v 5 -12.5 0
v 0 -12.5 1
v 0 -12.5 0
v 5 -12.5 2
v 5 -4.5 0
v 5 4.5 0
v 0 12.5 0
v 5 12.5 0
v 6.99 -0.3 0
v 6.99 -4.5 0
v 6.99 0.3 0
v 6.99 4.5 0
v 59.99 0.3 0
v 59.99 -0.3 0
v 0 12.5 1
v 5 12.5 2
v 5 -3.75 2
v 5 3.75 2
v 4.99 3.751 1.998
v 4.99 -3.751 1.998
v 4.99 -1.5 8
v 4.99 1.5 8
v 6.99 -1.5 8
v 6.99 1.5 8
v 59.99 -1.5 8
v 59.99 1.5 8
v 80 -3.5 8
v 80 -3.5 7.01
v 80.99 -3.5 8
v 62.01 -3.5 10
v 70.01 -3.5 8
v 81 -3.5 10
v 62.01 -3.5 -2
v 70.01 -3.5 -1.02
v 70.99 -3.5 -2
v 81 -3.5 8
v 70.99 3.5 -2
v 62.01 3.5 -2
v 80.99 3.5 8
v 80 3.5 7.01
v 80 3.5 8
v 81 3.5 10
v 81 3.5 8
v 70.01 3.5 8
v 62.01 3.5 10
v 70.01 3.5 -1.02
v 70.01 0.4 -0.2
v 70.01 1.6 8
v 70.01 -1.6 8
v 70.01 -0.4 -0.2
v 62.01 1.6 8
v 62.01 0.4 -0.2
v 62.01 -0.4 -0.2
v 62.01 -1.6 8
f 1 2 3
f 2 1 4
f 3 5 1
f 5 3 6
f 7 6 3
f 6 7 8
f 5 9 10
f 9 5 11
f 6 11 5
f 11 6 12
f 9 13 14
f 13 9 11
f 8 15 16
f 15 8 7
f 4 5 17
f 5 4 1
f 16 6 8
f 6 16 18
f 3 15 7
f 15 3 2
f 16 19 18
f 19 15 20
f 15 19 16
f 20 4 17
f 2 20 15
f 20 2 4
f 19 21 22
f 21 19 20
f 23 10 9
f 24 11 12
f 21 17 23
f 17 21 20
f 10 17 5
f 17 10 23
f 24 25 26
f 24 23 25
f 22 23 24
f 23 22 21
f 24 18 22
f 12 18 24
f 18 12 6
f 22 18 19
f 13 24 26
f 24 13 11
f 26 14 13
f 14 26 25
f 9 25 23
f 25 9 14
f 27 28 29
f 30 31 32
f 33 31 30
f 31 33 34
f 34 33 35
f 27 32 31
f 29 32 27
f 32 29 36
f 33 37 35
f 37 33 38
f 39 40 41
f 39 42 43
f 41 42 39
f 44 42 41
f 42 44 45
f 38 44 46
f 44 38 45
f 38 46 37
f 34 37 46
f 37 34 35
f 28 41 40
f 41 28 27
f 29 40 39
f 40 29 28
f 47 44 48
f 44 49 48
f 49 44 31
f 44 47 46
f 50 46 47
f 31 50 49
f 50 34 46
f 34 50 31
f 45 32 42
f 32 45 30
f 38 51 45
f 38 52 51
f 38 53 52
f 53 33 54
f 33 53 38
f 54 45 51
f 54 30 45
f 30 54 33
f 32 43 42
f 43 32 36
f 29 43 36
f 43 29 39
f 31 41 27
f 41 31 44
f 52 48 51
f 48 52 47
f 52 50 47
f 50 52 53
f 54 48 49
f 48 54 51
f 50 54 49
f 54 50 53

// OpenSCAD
// HedgehogClip_2.scad
//
// Gutter clip for retaining a "hedgehog" debris-repelling filler.
// Inspired by a wire-based design by David Poston.
//
// Take 2 with narrower, triangular cross piece
//

delta         = 0.01 ;
clearance     = 0.1 ;

gulley_w      = 50 ;
gulley_edge_w = 10 ;   
clip_tw       = 3 ;                 // Width of cross-piece triangle
clip_ta       = 0.6 ;               // Width of triangle apex (non-zero for printing)
clip_th       = 8 ;                 // Height of cross-piece triangle
clip_l        = gulley_w + gulley_edge_w ;
clip_tbar_w   = 25 ;                // Width of T-bar end
clip_tbar_d   = gulley_edge_w/2 ;   // Depth of T-bar end
clip_tbar_t0  = 1 ;                 // Thickness of T-bar thin end
clip_tbar_t   = 2 ;                 // Thickness of T-bar thick end
retainer_w    = 7 ;                 // Width of retainer
retainer_d    = 8 ;                 // Depth of retainer
retainer_t    = 2 ;                 // Thickness of retainer cross-bar
retainer_lip  = 1 ;                 // Width/thickness of retainer lip


module triangular_prism(l, w, h) {
    // Triangular prism, centred on and extending along X-axis,
    // with the apex down
    //
    // l = length of prism
    // w = width of base of prism
    // h = height from base to apex of prism
    //
    // NOTE: this can be constructed as a degenerate form of "symmetric_trapezoid"
    //
    rotate([0,90,0]) {
        linear_extrude(height=l) {
            polygon(
                points=[
                    [0,0], 
                    [-h, -w/2], 
                    [-h, +w/2], 
                    ],
                paths=[[0,1,2,0]]
            ) ;
        }
    }
}
////-Test triangular_prism(l, w, h)
// triangular_prism(50, 3, 8) ;


module symmetric_trapezoid(l, w1, w2, h) {
    // Symmetric tapered cuboid lying on X-Y plane, extending from origin along X-axis
    //
    // l    = overall length (X-dimension)
    // w1   = width of edge lying on X-Y plane
    // w2   = width of edge above X-Y plane
    // h    = height (Z-dimension)
    //
    rotate([0,90,0]) {
        linear_extrude(height=l) {
            polygon(
                points=[
                    [ 0,-w1/2], 
                    [-h,-w2/2], 
                    [-h,+w2/2], 
                    [0, +w1/2],
                    ],
                paths=[[0,1,2,3,0]]
            ) ;
        }
    }
}
////-Test symmetric_trapezoid(l, w1, w2, t)
// symmetric_trapezoid(50, 2, 4, 8) ;

module wedge(l,w,t0,t1) {
    // Wedge with edge lying on and extending on the X-axis, 
    // tapering along the Y axis.
    //
    // l  = length of wedge
    // w  = width of wedge
    // t0 = thickness of wedge at X-axis (y=0)
    // t1 = thickness of wedge away from X-axis (y=w)
    //
    difference() {
        // Body:
        translate([0,0,0])
            cube(size=[l,w,t0+t1], center=false) ;
        // Taper:
        translate([0,0,t0])
            rotate([atan2(t1-t0,w),0,0])
                translate([-delta,-delta,0])
                    cube(size=[l+delta*2,w+t0+t1,t0+t1], center=false) ;
    }
}
////-Test wedge(l,w,t0,t1)
// wedge(100,10,2,1) ;
// wedge(20,2,2,0) ;

module clip_main_part(tbar_w, tbar_d, tbar_t, tbar_t0, clip_l, clip_w, clip_a, clip_h) {
    rotate([0,0,-90])
        translate([-tbar_w/2,0,0])
            wedge(tbar_w, tbar_d, tbar_t0, tbar_t) ;
    translate([tbar_d-delta,0,0])
        symmetric_trapezoid(tbar_t, clip_w*3, clip_w, clip_h) ;
    translate([tbar_d-delta,0,0])
        symmetric_trapezoid(clip_l-tbar_d, clip_a, clip_w, clip_h) ;
}
////-Test clip_main_part(tbar_w,tbar_d,tbar_t0,clip_l,clip_w,clip_t)
clip_main_part(clip_tbar_w, clip_tbar_d, clip_tbar_t, clip_tbar_t0, clip_l, clip_tw, clip_ta, clip_th) ;


retainer_slider_h = clip_th+retainer_t*2 ;

module clip_retainer() {
    difference() {
        union() {
            // Retaining clip slider body
            translate([-retainer_d+delta,-retainer_w/2,0])
                cube(size=[retainer_d, retainer_w, retainer_slider_h], center=false) ;
            // Retaining clip gulley edge hook
            translate([-delta,retainer_w/2,0])
                rotate([0,0,-90])
                    wedge(retainer_w, retainer_lip, retainer_lip, 0) ;

            // Retaining clip positioning arm
            translate([0,-retainer_w/2,retainer_slider_h-retainer_t])
                cube(size=[gulley_edge_w+retainer_lip, retainer_w, retainer_t], center=false) ;
            translate([gulley_edge_w,retainer_w/2,retainer_slider_h-retainer_t+delta])
                rotate([-90,0,-90])
                    wedge(retainer_w, retainer_lip, retainer_lip, 0) ;
        }
        translate([-retainer_d-delta,0,retainer_t-clearance*2])
            rotate([0,0,0])
                symmetric_trapezoid(
                    retainer_d+retainer_lip+delta, 
                    clip_ta+clearance*2, 
                    clip_tw+clearance*2, 
                    clip_th+clearance*2
                    ) ;
                ////trapezoid_45_prism(
                ////    retainer_d+retainer_lip+delta, 
                ////    clip_w+clearance*2, 
                ////    clip_t+retainer_lip+delta
                ////) ;
    }
}
////-Test clip_retainer()
// For assembly viewing:
translate([clip_l+clip_tbar_d+5,0,-retainer_t]) clip_retainer() ;
// For printing with common baseline and no overhang
// translate([clip_l+clip_tbar_d+5,0,retainer_slider_h]) mirror([0,0,1]) clip_retainer() ;
